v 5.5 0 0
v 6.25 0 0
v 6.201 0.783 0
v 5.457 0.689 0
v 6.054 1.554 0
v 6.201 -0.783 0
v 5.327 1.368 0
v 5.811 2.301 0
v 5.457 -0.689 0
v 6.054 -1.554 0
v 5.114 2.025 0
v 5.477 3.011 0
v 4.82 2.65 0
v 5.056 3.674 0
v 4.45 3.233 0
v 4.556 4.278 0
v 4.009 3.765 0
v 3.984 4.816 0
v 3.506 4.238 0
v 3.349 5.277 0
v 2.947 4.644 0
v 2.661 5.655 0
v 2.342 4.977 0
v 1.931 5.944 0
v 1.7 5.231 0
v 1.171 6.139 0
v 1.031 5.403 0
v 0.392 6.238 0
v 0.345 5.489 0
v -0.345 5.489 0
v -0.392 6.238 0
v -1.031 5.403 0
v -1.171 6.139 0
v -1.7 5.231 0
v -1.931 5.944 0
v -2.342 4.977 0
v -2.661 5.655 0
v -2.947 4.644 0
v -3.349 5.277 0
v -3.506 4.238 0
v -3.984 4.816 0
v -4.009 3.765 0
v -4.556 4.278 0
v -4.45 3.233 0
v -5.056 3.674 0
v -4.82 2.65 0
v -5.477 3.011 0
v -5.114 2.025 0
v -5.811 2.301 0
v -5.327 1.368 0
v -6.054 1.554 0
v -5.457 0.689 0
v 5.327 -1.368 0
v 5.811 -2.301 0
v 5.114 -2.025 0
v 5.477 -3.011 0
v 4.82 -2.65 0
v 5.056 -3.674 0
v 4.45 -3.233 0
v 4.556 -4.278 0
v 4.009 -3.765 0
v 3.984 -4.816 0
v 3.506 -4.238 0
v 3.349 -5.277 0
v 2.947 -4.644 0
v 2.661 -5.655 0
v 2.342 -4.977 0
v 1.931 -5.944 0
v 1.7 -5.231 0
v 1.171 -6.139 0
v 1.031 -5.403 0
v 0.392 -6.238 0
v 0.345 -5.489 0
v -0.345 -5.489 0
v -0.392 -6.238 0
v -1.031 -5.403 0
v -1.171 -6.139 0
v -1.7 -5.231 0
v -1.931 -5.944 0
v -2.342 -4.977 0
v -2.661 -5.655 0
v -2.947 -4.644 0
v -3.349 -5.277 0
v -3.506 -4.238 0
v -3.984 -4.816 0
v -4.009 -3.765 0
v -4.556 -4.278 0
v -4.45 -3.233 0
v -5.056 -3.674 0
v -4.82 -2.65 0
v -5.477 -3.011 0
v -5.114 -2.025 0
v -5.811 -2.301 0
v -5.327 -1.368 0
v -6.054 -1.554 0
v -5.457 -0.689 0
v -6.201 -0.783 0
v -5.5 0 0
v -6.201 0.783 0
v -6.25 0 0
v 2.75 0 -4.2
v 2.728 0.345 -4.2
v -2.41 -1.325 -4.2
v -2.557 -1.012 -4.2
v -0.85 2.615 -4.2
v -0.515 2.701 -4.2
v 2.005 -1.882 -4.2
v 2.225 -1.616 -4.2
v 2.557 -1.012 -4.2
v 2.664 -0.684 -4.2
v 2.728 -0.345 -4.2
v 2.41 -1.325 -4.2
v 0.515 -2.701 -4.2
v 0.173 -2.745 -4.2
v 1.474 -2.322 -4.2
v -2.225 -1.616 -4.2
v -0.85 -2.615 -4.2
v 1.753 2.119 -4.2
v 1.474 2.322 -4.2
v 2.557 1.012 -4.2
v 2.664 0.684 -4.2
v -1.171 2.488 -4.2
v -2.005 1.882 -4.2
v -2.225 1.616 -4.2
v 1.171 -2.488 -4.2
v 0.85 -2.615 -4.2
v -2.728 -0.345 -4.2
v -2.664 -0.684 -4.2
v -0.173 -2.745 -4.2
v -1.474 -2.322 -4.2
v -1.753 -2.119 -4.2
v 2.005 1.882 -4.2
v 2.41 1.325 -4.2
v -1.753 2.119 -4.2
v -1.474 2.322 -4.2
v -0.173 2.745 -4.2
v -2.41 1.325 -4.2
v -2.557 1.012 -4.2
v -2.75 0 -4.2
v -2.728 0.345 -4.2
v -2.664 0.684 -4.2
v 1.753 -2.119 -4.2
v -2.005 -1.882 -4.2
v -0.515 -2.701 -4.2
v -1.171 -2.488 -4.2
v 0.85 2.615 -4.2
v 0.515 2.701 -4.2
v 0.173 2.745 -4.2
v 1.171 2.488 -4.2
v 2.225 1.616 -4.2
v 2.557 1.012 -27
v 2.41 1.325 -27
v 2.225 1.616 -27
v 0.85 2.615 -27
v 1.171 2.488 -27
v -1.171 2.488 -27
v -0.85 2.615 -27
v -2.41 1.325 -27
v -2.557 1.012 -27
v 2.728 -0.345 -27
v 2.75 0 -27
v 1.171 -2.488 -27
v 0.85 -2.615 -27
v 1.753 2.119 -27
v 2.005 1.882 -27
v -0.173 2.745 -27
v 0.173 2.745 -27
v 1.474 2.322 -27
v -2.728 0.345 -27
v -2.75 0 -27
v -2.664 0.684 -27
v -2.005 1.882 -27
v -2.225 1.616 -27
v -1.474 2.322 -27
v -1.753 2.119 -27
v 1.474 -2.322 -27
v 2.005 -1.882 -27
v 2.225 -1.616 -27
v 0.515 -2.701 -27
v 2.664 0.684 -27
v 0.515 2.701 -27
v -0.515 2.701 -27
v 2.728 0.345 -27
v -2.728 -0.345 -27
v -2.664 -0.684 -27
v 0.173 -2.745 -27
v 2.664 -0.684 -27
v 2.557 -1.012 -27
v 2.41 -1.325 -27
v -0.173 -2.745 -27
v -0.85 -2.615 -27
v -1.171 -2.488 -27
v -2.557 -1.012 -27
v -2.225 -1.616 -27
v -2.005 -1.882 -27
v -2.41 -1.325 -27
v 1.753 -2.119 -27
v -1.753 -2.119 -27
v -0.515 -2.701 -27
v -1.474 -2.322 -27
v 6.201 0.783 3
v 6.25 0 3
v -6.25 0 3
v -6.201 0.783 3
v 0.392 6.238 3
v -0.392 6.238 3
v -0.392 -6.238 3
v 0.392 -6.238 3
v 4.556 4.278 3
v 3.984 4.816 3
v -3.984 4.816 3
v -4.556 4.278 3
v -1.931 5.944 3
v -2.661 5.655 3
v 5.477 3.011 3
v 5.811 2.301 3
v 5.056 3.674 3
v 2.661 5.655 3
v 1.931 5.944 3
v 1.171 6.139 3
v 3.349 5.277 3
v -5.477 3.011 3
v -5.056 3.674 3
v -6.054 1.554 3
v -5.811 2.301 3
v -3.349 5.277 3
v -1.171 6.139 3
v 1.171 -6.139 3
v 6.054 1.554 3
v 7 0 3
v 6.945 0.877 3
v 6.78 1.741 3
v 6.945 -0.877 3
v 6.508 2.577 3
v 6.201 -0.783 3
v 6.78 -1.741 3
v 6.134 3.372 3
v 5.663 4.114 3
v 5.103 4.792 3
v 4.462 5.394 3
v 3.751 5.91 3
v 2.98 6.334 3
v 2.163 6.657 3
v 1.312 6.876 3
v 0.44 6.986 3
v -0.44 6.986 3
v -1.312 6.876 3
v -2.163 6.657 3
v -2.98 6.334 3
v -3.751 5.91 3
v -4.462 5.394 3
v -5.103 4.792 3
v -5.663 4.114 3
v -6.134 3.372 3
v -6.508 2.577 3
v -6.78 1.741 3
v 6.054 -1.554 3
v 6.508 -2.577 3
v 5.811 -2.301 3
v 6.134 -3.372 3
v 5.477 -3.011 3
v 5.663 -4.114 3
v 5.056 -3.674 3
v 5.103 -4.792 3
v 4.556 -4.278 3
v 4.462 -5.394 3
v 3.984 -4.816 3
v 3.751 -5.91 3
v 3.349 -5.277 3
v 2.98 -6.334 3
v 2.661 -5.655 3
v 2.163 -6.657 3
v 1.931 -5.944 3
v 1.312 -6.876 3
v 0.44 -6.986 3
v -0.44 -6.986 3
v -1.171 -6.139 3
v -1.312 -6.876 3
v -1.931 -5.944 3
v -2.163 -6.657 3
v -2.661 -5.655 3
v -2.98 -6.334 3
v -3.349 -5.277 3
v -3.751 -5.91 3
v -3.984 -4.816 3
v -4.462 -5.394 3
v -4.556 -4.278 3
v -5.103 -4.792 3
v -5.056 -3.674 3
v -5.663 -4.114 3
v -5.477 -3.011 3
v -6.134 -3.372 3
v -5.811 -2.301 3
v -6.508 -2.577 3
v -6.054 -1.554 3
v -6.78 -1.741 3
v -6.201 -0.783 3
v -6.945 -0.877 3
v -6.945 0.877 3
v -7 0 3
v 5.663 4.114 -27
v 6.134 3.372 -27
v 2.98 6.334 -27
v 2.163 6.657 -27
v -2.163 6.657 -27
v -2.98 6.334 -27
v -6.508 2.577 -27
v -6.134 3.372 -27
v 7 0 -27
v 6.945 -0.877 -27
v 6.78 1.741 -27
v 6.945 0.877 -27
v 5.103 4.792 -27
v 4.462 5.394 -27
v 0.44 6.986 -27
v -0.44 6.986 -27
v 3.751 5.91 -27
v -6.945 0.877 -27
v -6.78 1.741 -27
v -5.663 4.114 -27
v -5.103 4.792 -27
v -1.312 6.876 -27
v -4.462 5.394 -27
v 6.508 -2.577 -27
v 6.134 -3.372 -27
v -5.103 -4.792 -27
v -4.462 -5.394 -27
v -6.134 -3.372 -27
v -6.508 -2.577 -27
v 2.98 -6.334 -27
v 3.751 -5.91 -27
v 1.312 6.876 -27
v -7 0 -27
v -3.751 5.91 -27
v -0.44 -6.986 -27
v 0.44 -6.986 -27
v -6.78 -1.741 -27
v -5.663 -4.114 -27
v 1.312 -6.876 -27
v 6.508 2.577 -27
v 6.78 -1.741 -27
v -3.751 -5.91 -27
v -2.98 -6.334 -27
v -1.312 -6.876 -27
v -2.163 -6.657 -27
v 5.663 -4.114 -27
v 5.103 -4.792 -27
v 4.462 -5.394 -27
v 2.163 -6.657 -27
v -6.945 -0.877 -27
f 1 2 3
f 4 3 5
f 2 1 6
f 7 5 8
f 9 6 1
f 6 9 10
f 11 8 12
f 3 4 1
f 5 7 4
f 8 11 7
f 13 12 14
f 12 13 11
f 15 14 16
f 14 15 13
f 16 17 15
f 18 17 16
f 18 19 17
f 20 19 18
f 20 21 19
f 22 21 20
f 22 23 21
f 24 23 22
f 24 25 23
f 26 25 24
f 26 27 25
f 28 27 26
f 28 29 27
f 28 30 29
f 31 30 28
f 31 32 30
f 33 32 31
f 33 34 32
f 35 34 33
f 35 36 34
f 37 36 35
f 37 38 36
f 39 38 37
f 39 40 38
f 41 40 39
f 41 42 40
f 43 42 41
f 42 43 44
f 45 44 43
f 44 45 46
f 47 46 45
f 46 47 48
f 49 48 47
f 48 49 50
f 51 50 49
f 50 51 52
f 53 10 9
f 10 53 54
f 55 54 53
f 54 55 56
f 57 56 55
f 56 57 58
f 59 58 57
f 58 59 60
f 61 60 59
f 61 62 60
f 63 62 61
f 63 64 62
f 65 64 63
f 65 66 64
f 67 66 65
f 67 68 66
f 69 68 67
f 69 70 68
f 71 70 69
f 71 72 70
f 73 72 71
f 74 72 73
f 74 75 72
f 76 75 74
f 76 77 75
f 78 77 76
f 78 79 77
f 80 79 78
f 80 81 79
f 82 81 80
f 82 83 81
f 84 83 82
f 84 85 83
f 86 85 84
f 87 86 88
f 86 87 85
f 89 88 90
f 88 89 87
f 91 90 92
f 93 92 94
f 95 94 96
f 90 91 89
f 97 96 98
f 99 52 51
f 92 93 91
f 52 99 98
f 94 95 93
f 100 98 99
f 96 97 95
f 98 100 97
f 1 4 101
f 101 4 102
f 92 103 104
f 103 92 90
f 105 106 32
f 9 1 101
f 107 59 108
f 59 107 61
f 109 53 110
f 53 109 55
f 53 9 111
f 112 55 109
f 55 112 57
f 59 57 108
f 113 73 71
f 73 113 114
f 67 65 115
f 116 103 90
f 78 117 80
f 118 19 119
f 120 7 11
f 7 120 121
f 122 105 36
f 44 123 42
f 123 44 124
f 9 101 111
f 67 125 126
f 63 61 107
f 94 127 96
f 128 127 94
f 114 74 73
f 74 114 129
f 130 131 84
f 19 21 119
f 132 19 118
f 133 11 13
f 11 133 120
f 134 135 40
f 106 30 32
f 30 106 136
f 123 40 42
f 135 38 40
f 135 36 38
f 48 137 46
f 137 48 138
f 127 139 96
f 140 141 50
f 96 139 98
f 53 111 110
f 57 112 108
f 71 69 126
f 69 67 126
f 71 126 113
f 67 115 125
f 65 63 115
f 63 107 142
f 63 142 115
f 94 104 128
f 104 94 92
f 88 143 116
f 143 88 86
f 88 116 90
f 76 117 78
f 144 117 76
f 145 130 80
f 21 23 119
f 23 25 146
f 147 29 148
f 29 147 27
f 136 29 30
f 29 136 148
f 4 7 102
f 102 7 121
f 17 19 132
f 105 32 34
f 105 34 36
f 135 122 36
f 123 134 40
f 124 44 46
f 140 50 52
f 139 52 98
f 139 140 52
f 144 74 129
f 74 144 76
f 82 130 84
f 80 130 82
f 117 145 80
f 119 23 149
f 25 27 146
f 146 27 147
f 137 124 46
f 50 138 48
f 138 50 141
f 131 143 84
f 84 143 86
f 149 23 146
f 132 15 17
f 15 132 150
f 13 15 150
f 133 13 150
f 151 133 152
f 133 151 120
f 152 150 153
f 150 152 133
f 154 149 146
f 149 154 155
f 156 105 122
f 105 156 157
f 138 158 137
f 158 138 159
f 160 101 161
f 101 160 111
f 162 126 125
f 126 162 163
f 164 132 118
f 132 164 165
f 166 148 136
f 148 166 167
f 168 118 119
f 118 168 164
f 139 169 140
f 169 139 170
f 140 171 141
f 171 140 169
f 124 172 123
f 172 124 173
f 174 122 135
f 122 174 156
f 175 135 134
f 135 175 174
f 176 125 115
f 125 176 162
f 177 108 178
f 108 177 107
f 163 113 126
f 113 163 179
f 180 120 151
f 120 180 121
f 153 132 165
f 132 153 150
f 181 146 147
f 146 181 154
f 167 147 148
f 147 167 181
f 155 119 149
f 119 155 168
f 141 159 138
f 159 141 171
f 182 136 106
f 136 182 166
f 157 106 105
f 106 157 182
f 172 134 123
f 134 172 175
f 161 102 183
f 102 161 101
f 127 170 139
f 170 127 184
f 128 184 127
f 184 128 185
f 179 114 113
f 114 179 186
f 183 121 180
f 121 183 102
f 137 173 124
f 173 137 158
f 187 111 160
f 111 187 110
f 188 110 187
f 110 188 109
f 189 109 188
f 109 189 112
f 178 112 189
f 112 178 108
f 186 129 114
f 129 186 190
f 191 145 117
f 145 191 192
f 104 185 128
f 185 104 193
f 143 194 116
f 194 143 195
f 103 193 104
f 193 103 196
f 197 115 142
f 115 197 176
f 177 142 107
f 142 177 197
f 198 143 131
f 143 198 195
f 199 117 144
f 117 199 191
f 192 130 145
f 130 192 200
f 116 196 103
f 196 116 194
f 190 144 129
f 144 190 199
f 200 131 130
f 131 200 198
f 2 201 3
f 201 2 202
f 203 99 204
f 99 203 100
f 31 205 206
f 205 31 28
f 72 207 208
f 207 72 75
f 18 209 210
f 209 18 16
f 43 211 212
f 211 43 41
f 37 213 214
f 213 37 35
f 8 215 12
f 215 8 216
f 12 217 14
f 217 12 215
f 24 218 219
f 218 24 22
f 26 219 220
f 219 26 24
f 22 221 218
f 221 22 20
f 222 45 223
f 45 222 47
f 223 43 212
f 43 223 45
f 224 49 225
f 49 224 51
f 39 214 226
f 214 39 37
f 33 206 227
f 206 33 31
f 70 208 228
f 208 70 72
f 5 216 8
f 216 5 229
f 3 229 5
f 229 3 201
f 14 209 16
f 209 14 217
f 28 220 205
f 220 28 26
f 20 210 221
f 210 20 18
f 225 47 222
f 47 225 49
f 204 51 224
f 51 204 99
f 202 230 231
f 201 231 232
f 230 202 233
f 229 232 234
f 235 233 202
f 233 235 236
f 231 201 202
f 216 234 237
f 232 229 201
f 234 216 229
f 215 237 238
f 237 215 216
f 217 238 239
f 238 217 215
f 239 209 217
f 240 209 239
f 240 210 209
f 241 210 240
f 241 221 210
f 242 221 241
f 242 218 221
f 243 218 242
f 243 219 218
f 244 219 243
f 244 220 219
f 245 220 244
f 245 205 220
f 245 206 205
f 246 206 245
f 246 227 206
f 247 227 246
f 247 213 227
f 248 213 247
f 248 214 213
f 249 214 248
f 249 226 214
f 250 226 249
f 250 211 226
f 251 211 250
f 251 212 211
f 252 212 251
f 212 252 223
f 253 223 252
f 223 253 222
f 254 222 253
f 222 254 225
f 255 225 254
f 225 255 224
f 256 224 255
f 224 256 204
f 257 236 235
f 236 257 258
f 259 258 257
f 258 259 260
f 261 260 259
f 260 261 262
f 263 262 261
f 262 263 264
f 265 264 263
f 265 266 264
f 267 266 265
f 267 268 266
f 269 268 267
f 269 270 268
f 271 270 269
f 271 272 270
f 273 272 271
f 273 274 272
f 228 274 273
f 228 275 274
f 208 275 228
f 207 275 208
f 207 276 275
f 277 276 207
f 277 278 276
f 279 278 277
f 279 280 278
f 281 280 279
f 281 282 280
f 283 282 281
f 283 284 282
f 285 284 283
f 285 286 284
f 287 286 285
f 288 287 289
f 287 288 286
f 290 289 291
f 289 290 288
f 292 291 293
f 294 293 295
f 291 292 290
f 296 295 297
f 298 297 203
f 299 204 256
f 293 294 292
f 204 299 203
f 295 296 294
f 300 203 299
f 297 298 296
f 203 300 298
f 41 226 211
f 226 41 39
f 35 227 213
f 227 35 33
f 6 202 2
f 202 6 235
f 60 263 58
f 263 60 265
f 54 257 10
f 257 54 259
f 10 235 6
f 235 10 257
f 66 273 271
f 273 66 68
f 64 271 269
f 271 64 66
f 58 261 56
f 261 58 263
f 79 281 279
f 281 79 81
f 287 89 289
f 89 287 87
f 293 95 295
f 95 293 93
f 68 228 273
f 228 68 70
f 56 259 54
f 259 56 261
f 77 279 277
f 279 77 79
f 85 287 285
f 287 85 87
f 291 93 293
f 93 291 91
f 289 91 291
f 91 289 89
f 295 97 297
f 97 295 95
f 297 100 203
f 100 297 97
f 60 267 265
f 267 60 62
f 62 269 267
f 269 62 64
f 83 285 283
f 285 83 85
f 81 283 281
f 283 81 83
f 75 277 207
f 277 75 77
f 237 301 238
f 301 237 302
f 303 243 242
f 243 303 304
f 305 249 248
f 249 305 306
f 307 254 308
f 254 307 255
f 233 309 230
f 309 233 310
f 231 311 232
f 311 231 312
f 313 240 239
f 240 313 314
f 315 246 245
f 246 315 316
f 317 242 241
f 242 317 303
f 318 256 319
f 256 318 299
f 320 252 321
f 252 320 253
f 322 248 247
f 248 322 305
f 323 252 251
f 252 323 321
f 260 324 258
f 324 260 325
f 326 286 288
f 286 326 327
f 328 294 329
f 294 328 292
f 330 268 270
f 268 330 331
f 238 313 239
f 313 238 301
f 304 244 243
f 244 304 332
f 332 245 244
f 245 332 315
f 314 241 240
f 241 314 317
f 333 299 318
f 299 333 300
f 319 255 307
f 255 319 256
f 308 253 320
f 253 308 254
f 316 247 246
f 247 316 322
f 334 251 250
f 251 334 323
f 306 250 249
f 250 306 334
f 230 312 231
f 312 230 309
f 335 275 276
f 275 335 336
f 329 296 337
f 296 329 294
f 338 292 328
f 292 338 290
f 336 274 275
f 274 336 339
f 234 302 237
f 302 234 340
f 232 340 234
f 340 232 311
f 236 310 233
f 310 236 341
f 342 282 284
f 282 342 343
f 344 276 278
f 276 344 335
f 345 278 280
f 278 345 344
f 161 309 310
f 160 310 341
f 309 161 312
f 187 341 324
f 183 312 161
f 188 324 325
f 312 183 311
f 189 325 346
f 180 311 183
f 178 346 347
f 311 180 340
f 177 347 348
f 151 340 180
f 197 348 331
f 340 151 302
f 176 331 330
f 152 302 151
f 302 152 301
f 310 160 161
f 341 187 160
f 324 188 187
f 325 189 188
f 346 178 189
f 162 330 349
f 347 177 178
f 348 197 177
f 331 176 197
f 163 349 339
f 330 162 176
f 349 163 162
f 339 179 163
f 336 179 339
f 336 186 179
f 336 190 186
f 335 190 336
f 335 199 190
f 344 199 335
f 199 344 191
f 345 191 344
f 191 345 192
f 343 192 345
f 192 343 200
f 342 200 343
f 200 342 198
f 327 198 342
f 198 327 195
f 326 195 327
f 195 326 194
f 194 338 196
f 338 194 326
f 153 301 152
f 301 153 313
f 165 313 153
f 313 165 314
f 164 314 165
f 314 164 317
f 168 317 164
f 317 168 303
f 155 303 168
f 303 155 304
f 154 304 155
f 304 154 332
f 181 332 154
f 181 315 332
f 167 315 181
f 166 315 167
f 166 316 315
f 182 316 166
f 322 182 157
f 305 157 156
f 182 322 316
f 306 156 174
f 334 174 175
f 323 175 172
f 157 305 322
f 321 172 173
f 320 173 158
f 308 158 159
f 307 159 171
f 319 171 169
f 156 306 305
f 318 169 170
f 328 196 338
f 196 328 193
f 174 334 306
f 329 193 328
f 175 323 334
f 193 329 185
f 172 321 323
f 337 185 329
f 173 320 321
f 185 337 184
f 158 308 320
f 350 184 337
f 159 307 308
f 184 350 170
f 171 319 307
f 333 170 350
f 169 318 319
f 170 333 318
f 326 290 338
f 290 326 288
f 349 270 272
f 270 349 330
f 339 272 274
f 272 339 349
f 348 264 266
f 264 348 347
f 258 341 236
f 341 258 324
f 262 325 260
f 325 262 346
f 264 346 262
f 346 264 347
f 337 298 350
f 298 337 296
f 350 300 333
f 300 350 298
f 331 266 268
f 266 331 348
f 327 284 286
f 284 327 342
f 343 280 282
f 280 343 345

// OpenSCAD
$fn = 50;

difference() {
	union() {
		translate(v = [0, 0, -27.0]) {
			cylinder(h = 30, r = 7.0);
		}
	}
	union() {
		translate(v = [0, 0, 0]) {
			rotate(a = [0, 0, 0]) {
				difference() {
					union() {
						translate(v = [0, 0, -30.0]) {
							cylinder(h = 30, r = 2.25);
						}
						translate(v = [0, 0, -4.2]) {
							cylinder(h = 4.2, r1 = 2.75, r2 = 5.5);
						}
						translate(v = [0, 0, -30.0]) {
							cylinder(h = 30, r = 2.75);
						}
						translate(v = [0, 0, -30.0]) {
							cylinder(h = 30, r = 2.25);
						}
					}
					union();
				}
			}
		}
		#cylinder(h = 3, r = 6.25);
	}
}
